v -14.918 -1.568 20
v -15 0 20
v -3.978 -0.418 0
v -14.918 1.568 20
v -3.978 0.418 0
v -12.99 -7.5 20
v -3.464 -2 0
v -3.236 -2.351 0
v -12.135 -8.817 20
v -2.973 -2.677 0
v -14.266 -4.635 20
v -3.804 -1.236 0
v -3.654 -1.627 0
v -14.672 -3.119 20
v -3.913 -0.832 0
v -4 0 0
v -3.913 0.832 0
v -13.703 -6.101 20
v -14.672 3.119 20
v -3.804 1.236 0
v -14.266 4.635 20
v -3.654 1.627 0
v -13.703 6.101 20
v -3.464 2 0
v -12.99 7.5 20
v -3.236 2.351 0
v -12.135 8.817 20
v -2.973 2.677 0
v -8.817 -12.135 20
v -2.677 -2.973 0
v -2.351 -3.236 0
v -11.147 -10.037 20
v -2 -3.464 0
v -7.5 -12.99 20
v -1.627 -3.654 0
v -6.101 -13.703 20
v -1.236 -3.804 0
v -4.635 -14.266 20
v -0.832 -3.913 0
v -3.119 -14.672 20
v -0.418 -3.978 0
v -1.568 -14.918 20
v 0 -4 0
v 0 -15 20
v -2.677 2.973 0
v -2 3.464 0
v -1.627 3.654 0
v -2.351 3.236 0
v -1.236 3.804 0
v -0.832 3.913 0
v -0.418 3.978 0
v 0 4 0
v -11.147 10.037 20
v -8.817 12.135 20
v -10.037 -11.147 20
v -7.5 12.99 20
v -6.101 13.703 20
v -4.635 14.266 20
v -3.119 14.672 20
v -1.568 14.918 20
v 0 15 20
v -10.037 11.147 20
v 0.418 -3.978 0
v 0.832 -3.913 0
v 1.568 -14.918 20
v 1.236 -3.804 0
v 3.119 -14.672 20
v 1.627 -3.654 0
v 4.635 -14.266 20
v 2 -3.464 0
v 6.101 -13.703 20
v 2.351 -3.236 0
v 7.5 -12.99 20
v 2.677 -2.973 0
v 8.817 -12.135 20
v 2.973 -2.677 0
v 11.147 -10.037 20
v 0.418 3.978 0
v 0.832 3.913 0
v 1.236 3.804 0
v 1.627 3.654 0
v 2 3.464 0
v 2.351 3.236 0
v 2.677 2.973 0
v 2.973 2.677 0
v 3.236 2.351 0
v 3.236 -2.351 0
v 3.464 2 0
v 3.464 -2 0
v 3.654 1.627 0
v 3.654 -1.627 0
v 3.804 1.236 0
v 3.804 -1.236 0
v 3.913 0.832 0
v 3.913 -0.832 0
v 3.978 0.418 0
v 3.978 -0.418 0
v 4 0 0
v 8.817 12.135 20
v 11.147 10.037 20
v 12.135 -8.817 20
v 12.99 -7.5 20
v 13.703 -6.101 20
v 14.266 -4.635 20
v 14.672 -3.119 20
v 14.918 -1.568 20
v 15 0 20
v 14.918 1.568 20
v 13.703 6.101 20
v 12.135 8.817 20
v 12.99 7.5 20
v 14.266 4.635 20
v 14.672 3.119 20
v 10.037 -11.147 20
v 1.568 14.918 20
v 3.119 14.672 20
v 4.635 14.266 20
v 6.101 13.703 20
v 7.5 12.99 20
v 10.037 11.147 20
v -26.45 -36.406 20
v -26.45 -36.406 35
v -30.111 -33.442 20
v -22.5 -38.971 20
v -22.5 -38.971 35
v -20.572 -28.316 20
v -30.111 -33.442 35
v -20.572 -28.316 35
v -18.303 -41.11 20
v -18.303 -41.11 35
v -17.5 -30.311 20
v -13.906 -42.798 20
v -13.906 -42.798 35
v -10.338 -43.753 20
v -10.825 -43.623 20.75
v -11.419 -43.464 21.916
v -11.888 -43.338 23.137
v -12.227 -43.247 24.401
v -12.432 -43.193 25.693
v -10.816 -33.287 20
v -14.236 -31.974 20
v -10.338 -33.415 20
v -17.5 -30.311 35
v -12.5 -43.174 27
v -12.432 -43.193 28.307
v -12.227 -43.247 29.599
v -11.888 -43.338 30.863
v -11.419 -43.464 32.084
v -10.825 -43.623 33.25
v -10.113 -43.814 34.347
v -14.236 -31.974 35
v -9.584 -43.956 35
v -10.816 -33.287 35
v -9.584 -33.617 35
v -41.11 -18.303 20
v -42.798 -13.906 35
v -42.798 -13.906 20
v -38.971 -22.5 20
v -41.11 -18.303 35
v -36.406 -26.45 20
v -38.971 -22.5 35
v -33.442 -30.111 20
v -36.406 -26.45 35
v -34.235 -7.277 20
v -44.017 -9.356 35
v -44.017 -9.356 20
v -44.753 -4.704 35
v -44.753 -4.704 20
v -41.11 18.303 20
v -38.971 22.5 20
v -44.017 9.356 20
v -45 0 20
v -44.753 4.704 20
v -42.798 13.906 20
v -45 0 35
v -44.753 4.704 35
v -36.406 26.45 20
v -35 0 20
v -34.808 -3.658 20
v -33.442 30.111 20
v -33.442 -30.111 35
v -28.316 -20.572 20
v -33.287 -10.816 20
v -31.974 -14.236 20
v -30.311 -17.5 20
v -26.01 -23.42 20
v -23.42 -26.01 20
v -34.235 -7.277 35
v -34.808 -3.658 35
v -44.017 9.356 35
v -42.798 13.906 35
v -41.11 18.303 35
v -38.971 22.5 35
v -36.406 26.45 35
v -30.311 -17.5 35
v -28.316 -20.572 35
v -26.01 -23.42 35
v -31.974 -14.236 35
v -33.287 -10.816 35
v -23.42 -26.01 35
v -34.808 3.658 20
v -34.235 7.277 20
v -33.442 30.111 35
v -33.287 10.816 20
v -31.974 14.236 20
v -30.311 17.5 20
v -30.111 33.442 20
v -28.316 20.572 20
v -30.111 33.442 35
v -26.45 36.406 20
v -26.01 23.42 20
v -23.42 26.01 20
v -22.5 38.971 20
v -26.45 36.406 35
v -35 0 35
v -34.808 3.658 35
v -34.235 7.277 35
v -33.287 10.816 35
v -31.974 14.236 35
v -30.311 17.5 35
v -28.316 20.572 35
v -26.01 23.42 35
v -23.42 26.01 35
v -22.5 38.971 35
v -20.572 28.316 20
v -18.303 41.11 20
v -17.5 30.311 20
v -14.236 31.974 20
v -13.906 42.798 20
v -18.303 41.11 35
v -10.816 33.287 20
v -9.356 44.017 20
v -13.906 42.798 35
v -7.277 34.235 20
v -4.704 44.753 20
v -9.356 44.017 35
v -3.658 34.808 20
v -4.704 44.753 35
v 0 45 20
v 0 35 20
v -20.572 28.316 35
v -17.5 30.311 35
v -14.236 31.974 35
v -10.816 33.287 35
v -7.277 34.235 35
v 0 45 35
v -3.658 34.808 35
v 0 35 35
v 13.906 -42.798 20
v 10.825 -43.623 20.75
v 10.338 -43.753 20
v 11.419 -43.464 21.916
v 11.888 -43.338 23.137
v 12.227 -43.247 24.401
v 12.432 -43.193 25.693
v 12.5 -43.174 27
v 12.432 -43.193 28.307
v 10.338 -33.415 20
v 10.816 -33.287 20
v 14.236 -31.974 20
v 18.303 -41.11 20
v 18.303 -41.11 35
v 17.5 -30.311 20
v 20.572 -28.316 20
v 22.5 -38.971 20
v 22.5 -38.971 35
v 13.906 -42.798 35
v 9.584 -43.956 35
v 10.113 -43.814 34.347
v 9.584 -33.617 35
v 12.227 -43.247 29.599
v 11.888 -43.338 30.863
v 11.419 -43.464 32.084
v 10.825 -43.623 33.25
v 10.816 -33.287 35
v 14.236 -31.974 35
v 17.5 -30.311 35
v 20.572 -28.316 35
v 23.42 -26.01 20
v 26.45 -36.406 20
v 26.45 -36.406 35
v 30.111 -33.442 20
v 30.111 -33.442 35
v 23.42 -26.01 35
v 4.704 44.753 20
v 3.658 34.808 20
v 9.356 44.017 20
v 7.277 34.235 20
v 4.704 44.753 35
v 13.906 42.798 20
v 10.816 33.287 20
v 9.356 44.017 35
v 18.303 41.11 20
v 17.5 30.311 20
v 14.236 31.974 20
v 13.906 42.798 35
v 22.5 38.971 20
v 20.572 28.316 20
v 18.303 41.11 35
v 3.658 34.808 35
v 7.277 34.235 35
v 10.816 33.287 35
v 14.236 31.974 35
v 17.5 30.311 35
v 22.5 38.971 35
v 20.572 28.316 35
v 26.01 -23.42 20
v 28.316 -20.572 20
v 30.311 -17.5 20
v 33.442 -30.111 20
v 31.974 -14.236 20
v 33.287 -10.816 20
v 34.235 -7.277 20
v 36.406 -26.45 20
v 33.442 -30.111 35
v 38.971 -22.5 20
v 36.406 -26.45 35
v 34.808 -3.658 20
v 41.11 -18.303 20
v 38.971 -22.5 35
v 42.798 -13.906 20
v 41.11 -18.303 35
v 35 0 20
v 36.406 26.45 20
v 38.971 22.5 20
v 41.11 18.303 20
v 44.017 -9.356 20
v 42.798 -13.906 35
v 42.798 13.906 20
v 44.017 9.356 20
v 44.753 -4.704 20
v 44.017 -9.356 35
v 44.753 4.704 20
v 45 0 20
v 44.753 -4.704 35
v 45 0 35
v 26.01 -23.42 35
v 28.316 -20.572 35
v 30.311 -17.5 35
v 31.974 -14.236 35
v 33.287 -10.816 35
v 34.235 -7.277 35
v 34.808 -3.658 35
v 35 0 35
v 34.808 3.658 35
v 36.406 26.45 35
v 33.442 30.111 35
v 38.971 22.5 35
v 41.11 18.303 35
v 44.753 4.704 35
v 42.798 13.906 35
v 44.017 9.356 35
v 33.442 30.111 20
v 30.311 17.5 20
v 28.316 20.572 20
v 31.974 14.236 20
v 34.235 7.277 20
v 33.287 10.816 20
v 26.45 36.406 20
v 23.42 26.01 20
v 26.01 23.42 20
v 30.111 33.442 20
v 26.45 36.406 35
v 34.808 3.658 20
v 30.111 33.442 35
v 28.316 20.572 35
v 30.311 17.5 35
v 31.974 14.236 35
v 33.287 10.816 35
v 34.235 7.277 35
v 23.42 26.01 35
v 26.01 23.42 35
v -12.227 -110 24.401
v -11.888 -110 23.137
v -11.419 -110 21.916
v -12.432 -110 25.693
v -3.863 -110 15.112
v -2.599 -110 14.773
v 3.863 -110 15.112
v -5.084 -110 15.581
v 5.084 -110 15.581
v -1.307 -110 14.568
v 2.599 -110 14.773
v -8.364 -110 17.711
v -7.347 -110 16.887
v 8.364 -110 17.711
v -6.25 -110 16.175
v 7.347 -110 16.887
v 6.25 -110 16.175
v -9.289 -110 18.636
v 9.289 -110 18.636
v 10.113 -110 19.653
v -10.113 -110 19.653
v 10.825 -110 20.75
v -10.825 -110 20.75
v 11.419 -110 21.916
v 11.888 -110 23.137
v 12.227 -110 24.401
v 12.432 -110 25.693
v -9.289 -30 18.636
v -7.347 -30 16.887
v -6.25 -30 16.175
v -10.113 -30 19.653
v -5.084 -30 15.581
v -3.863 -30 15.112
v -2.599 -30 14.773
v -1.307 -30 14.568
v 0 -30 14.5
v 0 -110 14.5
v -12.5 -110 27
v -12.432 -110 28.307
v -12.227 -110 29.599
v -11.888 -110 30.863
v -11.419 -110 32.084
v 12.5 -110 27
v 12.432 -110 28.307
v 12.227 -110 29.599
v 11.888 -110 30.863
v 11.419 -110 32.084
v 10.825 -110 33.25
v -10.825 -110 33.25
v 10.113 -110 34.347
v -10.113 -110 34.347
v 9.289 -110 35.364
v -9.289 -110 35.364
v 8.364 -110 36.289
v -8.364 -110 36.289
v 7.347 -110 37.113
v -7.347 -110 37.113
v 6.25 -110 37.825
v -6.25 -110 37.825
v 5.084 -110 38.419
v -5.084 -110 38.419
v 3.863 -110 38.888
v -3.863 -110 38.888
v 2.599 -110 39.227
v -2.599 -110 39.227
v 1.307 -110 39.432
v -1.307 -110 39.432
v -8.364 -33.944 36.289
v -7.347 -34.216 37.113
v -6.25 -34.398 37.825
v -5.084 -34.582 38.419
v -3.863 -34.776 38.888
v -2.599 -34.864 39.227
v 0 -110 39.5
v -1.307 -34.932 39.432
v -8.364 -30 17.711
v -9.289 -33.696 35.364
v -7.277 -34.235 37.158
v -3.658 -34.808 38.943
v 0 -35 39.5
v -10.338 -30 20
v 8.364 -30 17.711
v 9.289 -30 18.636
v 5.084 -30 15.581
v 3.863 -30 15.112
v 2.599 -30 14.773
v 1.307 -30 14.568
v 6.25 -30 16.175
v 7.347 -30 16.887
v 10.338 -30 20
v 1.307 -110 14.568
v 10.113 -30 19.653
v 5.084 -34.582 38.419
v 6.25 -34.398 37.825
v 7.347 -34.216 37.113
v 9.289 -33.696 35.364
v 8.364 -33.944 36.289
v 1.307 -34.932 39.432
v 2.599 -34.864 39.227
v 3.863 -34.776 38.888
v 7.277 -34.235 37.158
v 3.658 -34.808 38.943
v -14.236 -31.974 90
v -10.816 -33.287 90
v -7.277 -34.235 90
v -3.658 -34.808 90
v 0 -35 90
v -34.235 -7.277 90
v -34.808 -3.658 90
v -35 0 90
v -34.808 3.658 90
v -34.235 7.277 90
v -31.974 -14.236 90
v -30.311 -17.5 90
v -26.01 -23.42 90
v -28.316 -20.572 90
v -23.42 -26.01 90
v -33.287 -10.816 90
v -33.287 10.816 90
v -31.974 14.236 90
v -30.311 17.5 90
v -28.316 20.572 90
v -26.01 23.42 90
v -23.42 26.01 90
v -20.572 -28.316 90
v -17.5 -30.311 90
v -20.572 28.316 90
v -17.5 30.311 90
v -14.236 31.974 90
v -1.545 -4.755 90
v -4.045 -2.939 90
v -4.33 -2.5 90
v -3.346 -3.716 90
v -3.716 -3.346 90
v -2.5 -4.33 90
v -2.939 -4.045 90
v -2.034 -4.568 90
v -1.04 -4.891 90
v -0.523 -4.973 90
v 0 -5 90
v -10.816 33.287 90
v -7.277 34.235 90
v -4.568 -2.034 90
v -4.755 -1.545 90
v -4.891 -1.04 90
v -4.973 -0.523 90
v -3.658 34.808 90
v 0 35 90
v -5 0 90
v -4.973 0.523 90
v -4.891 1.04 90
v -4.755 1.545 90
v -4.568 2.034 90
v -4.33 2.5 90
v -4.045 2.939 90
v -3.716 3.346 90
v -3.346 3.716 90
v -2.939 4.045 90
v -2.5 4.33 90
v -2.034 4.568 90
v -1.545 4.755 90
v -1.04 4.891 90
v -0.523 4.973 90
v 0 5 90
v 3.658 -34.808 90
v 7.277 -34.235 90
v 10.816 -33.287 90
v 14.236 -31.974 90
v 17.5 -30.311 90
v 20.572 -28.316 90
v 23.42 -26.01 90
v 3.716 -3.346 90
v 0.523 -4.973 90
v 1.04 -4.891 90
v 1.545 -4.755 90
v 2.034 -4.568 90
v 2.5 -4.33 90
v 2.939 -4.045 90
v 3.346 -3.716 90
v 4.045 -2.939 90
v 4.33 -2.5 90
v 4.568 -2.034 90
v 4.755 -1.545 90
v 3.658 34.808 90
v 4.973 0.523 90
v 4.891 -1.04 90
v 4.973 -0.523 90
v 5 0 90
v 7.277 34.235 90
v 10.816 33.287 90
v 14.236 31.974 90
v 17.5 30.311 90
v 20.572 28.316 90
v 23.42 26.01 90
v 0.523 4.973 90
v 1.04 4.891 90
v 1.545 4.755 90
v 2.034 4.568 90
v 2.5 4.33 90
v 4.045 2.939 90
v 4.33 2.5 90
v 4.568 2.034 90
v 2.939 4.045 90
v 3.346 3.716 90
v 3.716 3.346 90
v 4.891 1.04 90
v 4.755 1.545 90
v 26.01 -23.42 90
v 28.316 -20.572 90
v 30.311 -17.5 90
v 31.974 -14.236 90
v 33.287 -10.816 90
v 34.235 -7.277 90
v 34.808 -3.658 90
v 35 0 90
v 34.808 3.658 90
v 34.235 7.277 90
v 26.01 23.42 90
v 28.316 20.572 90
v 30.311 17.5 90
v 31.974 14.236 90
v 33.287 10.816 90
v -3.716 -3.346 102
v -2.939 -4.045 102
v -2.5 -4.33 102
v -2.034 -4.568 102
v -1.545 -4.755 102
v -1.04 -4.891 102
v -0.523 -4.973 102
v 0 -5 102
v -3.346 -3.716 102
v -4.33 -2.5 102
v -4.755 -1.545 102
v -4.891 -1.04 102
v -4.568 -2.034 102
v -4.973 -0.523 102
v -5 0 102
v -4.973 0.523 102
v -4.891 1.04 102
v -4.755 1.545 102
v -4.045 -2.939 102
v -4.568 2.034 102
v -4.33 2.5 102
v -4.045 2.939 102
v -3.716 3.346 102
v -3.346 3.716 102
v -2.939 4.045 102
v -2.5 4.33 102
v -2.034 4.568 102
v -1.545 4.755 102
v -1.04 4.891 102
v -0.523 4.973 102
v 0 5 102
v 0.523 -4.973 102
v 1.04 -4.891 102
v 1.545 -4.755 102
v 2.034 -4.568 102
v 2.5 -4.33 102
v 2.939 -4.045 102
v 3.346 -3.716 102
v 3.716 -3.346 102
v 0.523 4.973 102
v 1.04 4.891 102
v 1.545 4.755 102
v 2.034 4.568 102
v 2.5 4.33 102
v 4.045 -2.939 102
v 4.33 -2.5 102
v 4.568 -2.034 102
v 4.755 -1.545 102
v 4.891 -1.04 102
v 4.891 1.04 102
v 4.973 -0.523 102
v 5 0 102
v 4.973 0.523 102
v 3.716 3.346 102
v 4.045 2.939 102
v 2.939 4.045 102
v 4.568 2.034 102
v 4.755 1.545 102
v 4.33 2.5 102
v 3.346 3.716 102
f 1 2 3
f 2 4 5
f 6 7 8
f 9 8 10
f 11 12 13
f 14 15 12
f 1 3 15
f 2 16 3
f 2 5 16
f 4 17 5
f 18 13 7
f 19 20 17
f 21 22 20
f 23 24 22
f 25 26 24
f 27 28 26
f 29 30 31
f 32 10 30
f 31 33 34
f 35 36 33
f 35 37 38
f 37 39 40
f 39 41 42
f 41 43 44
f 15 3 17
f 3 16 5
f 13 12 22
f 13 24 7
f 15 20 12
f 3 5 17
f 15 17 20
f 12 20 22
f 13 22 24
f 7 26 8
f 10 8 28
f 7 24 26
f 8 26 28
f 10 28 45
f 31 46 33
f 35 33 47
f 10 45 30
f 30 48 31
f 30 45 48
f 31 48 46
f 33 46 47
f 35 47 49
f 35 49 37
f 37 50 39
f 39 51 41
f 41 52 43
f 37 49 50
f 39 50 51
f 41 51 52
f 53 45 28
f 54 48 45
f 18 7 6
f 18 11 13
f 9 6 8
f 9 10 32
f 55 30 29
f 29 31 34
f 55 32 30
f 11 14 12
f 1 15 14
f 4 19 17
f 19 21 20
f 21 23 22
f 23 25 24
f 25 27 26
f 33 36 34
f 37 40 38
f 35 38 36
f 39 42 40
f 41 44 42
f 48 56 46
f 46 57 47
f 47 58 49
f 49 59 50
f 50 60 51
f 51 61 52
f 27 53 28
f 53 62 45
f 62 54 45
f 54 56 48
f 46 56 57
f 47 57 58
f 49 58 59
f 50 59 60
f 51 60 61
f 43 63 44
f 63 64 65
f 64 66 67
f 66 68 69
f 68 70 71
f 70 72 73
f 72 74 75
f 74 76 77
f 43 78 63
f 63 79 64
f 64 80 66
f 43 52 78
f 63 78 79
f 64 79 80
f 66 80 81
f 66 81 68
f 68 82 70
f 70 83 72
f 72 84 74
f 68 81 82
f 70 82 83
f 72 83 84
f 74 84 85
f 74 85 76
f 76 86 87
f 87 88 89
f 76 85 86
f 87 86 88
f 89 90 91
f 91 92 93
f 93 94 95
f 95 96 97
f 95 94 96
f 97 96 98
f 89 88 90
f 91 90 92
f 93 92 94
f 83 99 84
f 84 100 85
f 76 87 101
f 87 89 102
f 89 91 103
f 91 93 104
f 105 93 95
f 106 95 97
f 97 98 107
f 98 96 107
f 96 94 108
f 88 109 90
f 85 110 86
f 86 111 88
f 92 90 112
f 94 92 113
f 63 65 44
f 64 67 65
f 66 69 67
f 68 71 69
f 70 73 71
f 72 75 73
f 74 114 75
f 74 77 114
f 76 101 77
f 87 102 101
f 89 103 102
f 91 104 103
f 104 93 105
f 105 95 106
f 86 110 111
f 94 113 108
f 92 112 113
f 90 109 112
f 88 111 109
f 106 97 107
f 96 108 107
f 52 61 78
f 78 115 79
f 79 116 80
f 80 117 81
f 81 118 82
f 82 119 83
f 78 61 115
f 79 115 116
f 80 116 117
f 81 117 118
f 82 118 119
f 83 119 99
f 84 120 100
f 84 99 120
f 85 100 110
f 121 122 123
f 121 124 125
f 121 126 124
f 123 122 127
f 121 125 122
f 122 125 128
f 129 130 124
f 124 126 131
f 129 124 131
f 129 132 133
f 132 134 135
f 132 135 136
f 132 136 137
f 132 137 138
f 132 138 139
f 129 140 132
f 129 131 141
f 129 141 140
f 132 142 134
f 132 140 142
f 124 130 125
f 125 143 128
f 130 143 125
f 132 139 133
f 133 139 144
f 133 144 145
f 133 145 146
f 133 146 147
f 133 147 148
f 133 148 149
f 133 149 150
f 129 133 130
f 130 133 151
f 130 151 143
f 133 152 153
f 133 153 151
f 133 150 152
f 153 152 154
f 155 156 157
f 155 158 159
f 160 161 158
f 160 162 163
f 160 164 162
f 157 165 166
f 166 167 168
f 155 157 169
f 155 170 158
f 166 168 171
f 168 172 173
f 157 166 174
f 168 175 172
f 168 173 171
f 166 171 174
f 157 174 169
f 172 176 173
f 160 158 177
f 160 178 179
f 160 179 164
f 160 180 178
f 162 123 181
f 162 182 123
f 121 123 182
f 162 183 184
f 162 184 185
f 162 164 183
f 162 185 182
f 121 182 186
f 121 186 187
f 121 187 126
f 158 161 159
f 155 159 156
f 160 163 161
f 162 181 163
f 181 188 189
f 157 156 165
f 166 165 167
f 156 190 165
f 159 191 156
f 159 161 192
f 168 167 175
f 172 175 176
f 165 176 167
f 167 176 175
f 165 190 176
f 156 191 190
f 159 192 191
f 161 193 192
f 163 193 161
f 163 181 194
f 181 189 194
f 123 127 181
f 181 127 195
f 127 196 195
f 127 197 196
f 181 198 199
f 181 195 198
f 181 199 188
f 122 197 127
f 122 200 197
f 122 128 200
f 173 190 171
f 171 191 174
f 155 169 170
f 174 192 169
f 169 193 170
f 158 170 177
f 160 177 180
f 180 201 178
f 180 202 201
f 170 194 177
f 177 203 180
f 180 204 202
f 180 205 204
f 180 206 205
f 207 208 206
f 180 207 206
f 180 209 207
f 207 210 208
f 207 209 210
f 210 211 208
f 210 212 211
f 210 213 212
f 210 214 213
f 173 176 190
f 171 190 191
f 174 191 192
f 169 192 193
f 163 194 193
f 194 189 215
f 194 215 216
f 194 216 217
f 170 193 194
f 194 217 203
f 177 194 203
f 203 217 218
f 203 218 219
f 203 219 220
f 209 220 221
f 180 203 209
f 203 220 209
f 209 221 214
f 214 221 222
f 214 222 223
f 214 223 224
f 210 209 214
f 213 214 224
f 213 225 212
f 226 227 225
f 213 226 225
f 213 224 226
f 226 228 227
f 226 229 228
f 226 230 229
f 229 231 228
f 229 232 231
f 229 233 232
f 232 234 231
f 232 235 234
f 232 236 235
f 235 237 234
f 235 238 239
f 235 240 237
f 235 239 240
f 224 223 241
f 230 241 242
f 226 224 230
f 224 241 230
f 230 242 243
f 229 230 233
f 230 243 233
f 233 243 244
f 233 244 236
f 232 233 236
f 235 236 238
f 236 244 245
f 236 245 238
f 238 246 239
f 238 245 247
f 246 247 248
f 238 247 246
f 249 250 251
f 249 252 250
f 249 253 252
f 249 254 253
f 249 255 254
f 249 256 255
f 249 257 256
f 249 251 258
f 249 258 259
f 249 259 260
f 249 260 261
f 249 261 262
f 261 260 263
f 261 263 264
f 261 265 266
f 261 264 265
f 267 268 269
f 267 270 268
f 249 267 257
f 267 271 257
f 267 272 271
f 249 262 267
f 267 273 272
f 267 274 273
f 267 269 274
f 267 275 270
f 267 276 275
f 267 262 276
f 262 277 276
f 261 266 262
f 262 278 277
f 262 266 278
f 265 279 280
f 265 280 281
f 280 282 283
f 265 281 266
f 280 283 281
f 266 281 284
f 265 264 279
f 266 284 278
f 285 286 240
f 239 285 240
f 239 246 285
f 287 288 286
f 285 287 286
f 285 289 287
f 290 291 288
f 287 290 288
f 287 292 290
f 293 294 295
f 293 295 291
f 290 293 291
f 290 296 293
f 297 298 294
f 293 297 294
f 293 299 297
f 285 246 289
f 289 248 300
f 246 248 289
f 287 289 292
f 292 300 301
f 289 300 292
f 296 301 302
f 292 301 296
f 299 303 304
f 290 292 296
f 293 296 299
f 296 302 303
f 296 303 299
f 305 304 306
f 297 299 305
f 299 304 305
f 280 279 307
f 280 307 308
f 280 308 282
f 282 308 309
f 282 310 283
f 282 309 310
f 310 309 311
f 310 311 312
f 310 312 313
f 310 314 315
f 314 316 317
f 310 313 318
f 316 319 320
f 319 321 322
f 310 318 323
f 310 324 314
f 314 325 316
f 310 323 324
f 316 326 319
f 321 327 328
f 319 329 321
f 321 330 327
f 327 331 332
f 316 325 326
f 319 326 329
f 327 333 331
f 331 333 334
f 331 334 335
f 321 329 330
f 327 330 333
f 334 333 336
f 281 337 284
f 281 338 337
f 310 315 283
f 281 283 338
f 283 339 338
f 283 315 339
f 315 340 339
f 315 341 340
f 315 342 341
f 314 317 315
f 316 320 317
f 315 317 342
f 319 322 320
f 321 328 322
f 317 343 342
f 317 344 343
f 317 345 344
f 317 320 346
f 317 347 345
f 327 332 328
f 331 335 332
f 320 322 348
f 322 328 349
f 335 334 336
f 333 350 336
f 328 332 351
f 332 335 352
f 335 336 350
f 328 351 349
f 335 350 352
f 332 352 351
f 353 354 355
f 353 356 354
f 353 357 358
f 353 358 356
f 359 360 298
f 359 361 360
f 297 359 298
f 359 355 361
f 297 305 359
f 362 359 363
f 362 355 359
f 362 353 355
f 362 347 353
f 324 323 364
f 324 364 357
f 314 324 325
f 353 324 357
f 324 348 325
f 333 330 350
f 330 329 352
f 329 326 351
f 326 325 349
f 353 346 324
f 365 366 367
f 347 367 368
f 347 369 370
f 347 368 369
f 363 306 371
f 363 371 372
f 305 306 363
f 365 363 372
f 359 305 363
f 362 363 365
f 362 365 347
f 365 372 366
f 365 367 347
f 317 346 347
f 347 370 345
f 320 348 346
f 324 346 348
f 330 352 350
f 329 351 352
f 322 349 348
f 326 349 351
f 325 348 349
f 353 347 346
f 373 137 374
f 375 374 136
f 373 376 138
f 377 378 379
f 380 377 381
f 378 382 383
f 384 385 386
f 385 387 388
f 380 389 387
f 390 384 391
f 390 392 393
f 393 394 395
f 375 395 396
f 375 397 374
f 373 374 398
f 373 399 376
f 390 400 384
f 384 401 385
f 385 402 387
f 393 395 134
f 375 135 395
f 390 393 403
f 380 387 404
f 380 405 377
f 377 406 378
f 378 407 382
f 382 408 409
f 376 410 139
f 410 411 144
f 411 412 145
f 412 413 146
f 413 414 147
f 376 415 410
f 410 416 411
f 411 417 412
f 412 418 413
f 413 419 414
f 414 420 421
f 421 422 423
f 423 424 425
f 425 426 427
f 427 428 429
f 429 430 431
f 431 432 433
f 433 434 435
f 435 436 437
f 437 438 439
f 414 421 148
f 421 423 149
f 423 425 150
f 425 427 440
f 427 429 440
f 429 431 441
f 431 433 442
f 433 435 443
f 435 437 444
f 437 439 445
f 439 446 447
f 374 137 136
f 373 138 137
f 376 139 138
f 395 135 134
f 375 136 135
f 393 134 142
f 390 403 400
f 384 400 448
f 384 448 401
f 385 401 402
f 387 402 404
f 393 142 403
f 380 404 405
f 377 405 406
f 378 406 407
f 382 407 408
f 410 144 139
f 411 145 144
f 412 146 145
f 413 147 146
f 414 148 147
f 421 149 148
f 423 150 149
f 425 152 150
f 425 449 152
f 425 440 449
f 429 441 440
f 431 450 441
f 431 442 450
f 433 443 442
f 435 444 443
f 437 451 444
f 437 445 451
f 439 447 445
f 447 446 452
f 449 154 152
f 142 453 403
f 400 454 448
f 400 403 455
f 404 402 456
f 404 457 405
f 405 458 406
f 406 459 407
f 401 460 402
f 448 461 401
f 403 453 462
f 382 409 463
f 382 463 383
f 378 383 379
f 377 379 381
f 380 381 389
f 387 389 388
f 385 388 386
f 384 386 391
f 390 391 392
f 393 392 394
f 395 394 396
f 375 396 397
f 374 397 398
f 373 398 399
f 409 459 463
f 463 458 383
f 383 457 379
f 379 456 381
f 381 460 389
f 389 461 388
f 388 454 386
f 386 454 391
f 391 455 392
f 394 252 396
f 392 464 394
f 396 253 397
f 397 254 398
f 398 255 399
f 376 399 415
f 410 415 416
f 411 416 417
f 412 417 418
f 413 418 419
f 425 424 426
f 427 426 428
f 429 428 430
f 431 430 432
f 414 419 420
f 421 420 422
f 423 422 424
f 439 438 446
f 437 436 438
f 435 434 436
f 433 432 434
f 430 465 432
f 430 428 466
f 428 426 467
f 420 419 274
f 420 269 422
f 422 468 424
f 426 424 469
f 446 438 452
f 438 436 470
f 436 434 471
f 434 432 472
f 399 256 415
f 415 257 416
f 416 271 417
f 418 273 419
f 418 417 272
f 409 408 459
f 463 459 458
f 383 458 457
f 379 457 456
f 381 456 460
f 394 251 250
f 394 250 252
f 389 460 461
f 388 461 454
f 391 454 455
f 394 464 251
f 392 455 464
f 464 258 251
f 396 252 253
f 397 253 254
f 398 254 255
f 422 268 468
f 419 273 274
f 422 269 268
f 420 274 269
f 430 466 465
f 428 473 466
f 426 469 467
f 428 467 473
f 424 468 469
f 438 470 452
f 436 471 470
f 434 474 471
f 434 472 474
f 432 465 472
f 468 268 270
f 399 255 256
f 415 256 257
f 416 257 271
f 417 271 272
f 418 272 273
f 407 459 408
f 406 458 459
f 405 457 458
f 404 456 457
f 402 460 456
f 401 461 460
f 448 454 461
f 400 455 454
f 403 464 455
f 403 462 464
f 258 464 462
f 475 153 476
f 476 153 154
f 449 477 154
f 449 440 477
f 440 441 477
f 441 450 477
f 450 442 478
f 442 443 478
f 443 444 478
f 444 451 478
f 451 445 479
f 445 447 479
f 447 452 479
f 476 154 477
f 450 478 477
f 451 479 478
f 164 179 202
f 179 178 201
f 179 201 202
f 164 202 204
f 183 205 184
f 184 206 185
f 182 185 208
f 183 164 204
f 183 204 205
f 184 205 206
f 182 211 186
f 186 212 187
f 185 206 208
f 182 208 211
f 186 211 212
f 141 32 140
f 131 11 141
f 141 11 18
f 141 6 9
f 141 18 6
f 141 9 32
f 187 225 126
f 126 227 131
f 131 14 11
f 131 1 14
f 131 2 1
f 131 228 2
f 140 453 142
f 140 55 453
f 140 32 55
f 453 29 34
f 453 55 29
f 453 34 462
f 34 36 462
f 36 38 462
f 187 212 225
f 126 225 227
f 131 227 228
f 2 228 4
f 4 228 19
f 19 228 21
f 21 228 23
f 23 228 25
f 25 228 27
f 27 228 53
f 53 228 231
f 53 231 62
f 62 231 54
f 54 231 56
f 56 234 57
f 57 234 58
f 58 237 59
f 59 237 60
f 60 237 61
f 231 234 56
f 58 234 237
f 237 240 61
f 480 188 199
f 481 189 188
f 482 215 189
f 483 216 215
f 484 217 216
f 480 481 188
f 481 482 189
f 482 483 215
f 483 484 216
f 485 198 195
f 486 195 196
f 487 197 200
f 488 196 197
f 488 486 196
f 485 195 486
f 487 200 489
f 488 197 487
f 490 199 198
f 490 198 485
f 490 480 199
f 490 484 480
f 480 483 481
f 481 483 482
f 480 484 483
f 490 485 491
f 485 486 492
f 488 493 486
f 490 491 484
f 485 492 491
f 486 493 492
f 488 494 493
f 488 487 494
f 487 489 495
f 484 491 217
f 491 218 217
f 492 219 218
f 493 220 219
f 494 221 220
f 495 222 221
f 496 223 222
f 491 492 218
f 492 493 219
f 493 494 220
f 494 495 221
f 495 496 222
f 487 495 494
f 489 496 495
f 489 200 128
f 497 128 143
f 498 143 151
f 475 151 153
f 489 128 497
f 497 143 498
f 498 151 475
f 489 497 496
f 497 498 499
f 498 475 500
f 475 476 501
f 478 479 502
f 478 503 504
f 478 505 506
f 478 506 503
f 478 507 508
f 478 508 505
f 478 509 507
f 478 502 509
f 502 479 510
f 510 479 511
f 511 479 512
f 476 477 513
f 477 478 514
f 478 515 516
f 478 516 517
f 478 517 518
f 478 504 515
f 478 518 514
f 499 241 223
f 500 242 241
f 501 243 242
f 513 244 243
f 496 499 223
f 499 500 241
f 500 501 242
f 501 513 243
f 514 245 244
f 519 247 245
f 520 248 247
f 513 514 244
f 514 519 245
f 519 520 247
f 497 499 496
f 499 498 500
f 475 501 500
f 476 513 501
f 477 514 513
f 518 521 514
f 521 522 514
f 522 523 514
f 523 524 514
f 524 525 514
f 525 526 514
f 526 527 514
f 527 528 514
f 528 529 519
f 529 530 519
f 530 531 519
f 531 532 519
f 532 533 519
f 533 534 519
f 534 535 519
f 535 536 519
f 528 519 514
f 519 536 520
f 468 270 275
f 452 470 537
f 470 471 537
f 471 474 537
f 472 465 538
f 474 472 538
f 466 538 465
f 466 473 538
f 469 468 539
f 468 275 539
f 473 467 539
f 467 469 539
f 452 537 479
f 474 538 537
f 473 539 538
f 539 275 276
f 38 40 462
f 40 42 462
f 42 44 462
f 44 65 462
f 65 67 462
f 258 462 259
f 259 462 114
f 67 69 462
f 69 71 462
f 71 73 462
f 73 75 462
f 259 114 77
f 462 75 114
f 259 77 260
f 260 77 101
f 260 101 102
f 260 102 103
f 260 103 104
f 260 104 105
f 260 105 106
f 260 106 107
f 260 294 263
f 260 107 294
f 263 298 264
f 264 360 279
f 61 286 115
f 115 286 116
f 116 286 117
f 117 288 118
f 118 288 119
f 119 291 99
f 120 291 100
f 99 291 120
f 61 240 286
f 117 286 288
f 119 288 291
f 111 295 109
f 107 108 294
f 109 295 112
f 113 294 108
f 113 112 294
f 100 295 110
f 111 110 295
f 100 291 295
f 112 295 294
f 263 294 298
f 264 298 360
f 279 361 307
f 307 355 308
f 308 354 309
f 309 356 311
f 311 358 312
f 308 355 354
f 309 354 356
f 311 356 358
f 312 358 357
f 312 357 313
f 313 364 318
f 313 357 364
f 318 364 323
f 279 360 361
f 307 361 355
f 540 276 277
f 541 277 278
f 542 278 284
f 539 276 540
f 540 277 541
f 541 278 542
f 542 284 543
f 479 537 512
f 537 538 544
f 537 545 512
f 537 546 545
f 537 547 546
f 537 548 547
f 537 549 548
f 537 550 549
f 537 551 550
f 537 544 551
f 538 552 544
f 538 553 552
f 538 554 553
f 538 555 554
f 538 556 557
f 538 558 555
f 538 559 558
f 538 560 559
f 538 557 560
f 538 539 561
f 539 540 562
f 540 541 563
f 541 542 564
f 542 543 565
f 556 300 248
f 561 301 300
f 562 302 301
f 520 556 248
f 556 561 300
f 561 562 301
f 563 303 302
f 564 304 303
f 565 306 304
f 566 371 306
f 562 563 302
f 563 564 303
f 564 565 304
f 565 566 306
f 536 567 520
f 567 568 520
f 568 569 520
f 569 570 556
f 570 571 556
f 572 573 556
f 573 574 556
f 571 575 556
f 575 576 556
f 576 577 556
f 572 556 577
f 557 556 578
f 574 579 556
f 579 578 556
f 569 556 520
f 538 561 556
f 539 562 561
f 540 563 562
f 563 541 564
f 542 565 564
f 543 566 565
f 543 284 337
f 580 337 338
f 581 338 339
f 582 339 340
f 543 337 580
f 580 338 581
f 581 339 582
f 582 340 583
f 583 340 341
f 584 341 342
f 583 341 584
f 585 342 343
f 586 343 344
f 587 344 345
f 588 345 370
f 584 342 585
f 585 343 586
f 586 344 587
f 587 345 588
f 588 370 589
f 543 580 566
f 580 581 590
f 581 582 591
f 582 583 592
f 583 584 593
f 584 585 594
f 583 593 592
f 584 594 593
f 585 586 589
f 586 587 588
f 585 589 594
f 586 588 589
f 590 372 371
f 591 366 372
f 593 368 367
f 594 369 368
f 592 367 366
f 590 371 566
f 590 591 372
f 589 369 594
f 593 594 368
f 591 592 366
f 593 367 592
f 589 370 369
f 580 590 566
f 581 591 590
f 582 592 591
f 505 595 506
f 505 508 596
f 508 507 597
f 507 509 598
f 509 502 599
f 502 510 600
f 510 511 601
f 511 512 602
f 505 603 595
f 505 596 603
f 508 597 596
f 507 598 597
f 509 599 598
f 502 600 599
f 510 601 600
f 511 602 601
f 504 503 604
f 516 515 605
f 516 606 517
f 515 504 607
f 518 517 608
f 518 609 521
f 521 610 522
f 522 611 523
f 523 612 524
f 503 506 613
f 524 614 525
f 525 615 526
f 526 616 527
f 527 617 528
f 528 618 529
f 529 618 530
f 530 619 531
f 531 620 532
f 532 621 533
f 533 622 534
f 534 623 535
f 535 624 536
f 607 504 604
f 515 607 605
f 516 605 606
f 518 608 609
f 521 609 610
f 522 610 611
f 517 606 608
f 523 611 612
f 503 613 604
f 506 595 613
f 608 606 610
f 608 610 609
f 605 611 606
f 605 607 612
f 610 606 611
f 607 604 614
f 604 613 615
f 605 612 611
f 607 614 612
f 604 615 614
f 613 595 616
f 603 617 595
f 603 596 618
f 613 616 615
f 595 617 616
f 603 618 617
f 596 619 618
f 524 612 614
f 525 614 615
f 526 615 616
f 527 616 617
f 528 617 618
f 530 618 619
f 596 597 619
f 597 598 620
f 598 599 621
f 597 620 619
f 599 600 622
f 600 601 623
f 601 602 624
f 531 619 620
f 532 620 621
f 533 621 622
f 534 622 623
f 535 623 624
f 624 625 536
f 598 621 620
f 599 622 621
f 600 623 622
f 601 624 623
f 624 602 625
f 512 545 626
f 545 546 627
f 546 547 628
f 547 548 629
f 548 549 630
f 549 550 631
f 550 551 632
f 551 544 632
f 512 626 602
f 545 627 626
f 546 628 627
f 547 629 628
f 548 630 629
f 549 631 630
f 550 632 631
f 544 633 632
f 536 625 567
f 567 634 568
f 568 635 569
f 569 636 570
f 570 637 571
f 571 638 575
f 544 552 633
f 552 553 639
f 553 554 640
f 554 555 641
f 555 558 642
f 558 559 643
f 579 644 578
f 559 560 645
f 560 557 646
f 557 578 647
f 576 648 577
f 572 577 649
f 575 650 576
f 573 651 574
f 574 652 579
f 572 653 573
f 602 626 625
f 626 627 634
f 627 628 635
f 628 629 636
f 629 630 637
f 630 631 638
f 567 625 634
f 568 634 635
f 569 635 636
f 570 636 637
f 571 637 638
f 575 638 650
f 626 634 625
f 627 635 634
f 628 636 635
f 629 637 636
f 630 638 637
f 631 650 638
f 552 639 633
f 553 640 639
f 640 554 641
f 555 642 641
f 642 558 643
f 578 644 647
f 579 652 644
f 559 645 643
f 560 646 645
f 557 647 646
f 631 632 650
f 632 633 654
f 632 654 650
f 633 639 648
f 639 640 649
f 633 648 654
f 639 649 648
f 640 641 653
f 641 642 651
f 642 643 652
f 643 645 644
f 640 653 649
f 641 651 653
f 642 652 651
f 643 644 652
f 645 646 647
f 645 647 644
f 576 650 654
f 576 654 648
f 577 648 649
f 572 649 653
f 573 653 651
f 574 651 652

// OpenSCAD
// file: design_params.scad
/*
 * fika - shared design parameters, the single source of truth.
 *
 * Read by every cad/*.scad (include <design_params.scad>) and re-parsed by
 * scripts/design_params.py for scripts/check_layout.py and
 * tools/energy_budget.py, so a value changed here flips the whole pipeline
 * at once. scripts/check_params.py fails the build if any other .scad
 * shadows a name defined here.
 *
 * Keep every line a plain literal: name = value; (numbers, booleans, flat
 * vectors). No arithmetic - derived values are computed by the consumers.
 *
 * Units: mm, deg C, W, V, A, bar, g unless noted.
 * Coordinates: origin at the center of the base plate top surface.
 * X right, Y toward the back, Z up. Positions are component reference
 * points noted per name.
 */

// frame envelope (outer dimensions, CNC aluminum plates)
frame_w = 310;
frame_d = 320;
frame_h = 400;          // side plate height; sides run z -8..392
frame_plate_t = 8;      // structural plates: sides, base, rear, top
mount_plate_t = 6;      // group mount plate
mount_plate_d = 90;     // group mount plate depth (y extent)
mount_plate_y = 20;     // group mount plate front edge

// boiler (single, dual use, copper shell; position = bottom center)
boiler_od = 102;
boiler_h = 160;
boiler_wall = 2;
boiler_x = -50;
boiler_y = 180;
boiler_z = 150;
boiler_volume_l = 1.0;  // nominal fill, used by the energy budget

// heater and mains
heater_power_w = 1400;
mains_voltage = 230;
mains_breaker_a = 10;
brew_temp_c = 93;
steam_temp_c = 125;
max_temp_c = 135;       // firmware hard cutoff; mechanical cutoff above this

// pump: rotary vane head + mains motor, axis along X at the rear base
// (position = axis center; assembly centered on pump_x)
pump_head_d = 42;
pump_head_l = 105;
motor_d = 100;
motor_l = 160;
pump_x = 0;
pump_y = 255;
pump_z = 55;
opv_bar = 9;            // pump bypass back to reservoir
relief_bar = 12;        // boiler mechanical safety relief valve

// brew group and cup zone (position = group axis at tray center)
group_od = 70;
group_h = 90;
group_x = 0;
group_y = 65;
cup_clearance_h = 95;   // spout height above the tray top
cup_max_d = 90;

// drip tray with load cell scale (tray_z = top of load cell + gap)
tray_w = 200;
tray_d = 130;
tray_h = 30;
tray_y = 15;            // tray front edge
tray_z = 13;
loadcell_l = 55;        // TAL220-class bar load cell
loadcell_w = 12.7;
loadcell_h = 12.7;
scale_capacity_g = 1000;

// water tank (position = front face / bottom)
tank_w = 200;
tank_d = 55;
tank_h = 200;
tank_y = 245;
tank_z = 150;

// plumbing, copper lines
brew_line_od = 6;
brew_line_wall = 1;
steam_line_od = 6;

// layout rules (scripts/check_layout.py)
clearance = 10;         // minimum gap between component envelopes
clearance_wall = 5;     // minimum gap between components and frame plates
// main file
/*
 * fika - brew group envelope.
 * Purpose: layout placeholder for the brew group with portafilter.
 *          Origin at the spout tip center, +Z up into the machine; the
 *          body top carries the inlet nipple that pokes through the group
 *          mount plate hole.
 * Material: brass group and portafilter (pressure path, never printed)
 * Fabrication: cots
 */

include <design_params.scad>

$fn = 60;

module group() {
    // spout
    color("#b5a642") cylinder(d1 = 8, d2 = 30, h = 20);
    // portafilter body and handle
    color("#b5a642") translate([0, 0, 20]) cylinder(d = group_od + 20, h = 15);
    color("#222222") translate([0, -group_od / 2 + 5, 27])
        rotate([90, 0, 0]) cylinder(d = 25, h = 80);
    // group body
    color("#b5a642") translate([0, 0, 20]) cylinder(d = group_od, h = group_h - 20);
    // inlet nipple, through the mount plate hole
    color("#b5a642") translate([0, 0, group_h]) cylinder(d = 10, h = 12);
}

group();
